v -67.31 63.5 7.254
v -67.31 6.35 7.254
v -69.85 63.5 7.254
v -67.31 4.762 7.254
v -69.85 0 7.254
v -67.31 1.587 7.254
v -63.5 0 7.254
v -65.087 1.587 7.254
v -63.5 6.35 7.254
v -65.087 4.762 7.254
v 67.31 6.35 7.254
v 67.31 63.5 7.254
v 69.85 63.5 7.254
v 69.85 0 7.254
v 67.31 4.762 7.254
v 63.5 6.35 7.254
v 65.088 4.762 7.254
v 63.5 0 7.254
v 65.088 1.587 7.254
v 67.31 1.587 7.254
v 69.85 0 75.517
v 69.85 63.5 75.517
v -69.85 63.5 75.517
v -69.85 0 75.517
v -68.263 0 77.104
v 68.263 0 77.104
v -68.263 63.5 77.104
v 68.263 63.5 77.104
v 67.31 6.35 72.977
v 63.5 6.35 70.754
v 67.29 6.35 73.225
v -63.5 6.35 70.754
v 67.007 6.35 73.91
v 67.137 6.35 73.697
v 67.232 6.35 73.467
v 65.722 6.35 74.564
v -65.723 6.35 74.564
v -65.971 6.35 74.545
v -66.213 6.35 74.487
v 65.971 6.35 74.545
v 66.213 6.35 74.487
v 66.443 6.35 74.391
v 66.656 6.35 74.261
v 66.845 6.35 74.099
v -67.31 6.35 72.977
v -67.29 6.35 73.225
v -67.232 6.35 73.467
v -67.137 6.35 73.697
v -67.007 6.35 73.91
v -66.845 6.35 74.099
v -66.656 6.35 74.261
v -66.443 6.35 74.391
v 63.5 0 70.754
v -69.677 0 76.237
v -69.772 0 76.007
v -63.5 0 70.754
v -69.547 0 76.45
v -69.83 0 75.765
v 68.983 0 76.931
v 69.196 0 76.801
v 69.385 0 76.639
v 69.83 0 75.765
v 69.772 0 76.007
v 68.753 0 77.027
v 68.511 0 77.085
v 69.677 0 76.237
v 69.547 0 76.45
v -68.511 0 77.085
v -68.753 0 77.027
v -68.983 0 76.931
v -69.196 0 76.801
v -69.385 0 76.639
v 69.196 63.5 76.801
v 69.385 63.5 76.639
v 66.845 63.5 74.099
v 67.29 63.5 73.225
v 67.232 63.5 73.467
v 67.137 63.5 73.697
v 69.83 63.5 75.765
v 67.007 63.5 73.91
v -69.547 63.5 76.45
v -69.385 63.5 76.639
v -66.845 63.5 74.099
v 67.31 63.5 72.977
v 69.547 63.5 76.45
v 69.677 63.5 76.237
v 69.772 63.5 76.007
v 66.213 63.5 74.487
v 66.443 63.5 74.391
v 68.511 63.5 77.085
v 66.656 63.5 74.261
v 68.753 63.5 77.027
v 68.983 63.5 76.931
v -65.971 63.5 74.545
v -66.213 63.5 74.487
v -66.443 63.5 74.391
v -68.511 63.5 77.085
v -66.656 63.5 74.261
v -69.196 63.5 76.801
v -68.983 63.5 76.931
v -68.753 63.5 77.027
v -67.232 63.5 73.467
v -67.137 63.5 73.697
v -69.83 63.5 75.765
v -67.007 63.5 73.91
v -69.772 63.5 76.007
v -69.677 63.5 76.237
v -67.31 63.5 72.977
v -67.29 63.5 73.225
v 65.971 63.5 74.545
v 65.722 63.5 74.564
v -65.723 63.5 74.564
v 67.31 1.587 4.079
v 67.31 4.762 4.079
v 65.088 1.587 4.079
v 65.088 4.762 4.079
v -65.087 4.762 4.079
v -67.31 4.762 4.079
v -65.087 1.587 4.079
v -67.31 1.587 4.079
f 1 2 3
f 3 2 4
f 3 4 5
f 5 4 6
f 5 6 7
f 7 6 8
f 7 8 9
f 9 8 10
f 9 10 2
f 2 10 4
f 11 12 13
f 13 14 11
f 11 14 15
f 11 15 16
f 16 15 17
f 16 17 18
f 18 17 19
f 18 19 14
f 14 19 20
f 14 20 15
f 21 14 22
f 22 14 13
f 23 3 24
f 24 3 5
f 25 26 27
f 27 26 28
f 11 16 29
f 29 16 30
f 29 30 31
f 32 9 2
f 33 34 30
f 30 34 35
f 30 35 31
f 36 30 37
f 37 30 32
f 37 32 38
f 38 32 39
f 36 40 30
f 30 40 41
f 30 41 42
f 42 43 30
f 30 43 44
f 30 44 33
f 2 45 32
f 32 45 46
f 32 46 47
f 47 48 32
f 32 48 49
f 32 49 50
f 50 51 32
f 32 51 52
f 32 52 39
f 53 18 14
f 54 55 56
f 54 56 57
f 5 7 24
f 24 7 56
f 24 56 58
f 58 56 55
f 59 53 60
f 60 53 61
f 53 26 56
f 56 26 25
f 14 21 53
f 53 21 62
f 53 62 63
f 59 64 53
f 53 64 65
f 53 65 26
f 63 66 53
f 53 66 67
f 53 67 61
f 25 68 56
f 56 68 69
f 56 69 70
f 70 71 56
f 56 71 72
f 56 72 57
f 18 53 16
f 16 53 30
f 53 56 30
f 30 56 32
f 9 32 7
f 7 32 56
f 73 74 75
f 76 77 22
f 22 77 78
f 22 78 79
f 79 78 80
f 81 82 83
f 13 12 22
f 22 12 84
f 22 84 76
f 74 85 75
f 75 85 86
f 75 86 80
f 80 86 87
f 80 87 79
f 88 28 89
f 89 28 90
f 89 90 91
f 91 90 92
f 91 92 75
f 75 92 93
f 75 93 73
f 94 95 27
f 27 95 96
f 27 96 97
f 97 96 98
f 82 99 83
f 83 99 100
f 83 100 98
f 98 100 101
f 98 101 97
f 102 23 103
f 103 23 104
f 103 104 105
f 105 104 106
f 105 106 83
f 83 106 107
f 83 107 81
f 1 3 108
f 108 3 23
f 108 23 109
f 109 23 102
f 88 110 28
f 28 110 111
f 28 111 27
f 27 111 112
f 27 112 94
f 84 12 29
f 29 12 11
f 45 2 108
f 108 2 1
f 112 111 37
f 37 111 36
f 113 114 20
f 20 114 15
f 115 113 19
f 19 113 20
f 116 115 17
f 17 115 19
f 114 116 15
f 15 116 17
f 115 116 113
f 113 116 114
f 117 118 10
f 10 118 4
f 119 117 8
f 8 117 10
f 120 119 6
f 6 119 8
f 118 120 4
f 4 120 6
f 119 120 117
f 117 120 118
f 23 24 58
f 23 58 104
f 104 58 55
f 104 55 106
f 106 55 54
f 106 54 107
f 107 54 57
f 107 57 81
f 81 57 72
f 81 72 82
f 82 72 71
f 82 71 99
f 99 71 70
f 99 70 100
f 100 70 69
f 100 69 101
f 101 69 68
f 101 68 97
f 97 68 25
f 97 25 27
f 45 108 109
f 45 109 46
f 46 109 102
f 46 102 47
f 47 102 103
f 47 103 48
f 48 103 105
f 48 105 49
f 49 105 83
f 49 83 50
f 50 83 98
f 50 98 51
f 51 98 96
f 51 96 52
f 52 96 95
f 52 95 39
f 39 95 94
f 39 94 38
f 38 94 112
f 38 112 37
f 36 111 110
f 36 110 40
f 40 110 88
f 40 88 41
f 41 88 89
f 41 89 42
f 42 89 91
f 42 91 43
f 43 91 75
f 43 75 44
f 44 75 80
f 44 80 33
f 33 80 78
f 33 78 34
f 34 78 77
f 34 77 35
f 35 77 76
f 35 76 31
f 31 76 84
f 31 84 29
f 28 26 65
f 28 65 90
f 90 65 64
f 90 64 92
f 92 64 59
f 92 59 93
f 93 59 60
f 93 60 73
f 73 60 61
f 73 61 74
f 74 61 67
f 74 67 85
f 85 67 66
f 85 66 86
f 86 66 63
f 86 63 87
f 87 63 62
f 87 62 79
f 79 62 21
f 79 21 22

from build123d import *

# Parameters (mm, degrees)
SKETCH1_W           = 139.7
SKETCH1_H           = 154.20848
BOSS_EXTRUDE1_DEPTH = 6.35
SKETCH2_W           = 127
SKETCH2_H           = 141.50848
CUT_EXTRUDE1_DEPTH  = 6.35
SKETCH3_W           = 139.7
SKETCH3_H           = 154.20848
SKETCH3_W_2         = 134.62
SKETCH3_H_2         = 149.12848
BOSS_EXTRUDE2_DEPTH = 57.15
SKETCH4_W           = 139.7
SKETCH4_H           = 84.35848
CUT_EXTRUDE2_DEPTH  = 64.5
SKETCH5_W           = 2.2225
SKETCH5_H           = 3.175
BOSS_EXTRUDE3_DEPTH = 3.175
FILLET1_R           = 1.5875


with BuildPart() as part:
    # Sketch1 → Boss-Extrude1 (new body)
    with BuildSketch(Plane(origin=(0, 0, 0), x_dir=(1, 0, 0), z_dir=(0, 1, 0))):
        Rectangle(SKETCH1_W, SKETCH1_H)
    extrude(amount=BOSS_EXTRUDE1_DEPTH)

    # Sketch2 → Cut-Extrude1 (cut)
    with BuildSketch(Plane(origin=(0, 6.35, 0), x_dir=(1, 0, 0), z_dir=(0, 1, 0))):
        Rectangle(SKETCH2_W, SKETCH2_H)
    extrude(amount=-CUT_EXTRUDE1_DEPTH, mode=Mode.SUBTRACT)

    # Sketch3 → Boss-Extrude2 (add)
    with BuildSketch(Plane(origin=(0, 6.35, 0), x_dir=(1, 0, 0), z_dir=(0, 1, 0))):
        Rectangle(SKETCH3_W, SKETCH3_H)
        Rectangle(SKETCH3_W_2, SKETCH3_H_2, mode=Mode.SUBTRACT)
    extrude(amount=BOSS_EXTRUDE2_DEPTH)

    # Sketch4 → Cut-Extrude2 (cut, through all)
    with BuildSketch(Plane(origin=(0, 63.5, 0), x_dir=(1, 0, 0), z_dir=(0, 1, 0))):
        with Locations((0, 34.925)):
            Rectangle(SKETCH4_W, SKETCH4_H)
    extrude(amount=-CUT_EXTRUDE2_DEPTH, mode=Mode.SUBTRACT)

    # Sketch5 → Boss-Extrude3 (add)
    with BuildSketch(Plane(origin=(0, 0, 7.25424), x_dir=(-1, 0, 0), z_dir=(0, 0, -1))):
        with Locations((-66.19875, 3.175)):
            Rectangle(SKETCH5_W, SKETCH5_H)
        with Locations((66.19875, 3.175)):
            Rectangle(SKETCH5_W, SKETCH5_H)
    extrude(amount=BOSS_EXTRUDE3_DEPTH)

    # Fillet1
    fillet1_edges = [part.edges().sort_by_distance(p)[0] for p in [
        (-67.31, 34.925, 74.56424),
        (67.31, 34.925, 74.56424),
        (69.85, 31.75, 77.10424),
        (-69.85, 31.75, 77.10424),
    ]]
    fillet(fillet1_edges, radius=FILLET1_R)


solid = part.part
